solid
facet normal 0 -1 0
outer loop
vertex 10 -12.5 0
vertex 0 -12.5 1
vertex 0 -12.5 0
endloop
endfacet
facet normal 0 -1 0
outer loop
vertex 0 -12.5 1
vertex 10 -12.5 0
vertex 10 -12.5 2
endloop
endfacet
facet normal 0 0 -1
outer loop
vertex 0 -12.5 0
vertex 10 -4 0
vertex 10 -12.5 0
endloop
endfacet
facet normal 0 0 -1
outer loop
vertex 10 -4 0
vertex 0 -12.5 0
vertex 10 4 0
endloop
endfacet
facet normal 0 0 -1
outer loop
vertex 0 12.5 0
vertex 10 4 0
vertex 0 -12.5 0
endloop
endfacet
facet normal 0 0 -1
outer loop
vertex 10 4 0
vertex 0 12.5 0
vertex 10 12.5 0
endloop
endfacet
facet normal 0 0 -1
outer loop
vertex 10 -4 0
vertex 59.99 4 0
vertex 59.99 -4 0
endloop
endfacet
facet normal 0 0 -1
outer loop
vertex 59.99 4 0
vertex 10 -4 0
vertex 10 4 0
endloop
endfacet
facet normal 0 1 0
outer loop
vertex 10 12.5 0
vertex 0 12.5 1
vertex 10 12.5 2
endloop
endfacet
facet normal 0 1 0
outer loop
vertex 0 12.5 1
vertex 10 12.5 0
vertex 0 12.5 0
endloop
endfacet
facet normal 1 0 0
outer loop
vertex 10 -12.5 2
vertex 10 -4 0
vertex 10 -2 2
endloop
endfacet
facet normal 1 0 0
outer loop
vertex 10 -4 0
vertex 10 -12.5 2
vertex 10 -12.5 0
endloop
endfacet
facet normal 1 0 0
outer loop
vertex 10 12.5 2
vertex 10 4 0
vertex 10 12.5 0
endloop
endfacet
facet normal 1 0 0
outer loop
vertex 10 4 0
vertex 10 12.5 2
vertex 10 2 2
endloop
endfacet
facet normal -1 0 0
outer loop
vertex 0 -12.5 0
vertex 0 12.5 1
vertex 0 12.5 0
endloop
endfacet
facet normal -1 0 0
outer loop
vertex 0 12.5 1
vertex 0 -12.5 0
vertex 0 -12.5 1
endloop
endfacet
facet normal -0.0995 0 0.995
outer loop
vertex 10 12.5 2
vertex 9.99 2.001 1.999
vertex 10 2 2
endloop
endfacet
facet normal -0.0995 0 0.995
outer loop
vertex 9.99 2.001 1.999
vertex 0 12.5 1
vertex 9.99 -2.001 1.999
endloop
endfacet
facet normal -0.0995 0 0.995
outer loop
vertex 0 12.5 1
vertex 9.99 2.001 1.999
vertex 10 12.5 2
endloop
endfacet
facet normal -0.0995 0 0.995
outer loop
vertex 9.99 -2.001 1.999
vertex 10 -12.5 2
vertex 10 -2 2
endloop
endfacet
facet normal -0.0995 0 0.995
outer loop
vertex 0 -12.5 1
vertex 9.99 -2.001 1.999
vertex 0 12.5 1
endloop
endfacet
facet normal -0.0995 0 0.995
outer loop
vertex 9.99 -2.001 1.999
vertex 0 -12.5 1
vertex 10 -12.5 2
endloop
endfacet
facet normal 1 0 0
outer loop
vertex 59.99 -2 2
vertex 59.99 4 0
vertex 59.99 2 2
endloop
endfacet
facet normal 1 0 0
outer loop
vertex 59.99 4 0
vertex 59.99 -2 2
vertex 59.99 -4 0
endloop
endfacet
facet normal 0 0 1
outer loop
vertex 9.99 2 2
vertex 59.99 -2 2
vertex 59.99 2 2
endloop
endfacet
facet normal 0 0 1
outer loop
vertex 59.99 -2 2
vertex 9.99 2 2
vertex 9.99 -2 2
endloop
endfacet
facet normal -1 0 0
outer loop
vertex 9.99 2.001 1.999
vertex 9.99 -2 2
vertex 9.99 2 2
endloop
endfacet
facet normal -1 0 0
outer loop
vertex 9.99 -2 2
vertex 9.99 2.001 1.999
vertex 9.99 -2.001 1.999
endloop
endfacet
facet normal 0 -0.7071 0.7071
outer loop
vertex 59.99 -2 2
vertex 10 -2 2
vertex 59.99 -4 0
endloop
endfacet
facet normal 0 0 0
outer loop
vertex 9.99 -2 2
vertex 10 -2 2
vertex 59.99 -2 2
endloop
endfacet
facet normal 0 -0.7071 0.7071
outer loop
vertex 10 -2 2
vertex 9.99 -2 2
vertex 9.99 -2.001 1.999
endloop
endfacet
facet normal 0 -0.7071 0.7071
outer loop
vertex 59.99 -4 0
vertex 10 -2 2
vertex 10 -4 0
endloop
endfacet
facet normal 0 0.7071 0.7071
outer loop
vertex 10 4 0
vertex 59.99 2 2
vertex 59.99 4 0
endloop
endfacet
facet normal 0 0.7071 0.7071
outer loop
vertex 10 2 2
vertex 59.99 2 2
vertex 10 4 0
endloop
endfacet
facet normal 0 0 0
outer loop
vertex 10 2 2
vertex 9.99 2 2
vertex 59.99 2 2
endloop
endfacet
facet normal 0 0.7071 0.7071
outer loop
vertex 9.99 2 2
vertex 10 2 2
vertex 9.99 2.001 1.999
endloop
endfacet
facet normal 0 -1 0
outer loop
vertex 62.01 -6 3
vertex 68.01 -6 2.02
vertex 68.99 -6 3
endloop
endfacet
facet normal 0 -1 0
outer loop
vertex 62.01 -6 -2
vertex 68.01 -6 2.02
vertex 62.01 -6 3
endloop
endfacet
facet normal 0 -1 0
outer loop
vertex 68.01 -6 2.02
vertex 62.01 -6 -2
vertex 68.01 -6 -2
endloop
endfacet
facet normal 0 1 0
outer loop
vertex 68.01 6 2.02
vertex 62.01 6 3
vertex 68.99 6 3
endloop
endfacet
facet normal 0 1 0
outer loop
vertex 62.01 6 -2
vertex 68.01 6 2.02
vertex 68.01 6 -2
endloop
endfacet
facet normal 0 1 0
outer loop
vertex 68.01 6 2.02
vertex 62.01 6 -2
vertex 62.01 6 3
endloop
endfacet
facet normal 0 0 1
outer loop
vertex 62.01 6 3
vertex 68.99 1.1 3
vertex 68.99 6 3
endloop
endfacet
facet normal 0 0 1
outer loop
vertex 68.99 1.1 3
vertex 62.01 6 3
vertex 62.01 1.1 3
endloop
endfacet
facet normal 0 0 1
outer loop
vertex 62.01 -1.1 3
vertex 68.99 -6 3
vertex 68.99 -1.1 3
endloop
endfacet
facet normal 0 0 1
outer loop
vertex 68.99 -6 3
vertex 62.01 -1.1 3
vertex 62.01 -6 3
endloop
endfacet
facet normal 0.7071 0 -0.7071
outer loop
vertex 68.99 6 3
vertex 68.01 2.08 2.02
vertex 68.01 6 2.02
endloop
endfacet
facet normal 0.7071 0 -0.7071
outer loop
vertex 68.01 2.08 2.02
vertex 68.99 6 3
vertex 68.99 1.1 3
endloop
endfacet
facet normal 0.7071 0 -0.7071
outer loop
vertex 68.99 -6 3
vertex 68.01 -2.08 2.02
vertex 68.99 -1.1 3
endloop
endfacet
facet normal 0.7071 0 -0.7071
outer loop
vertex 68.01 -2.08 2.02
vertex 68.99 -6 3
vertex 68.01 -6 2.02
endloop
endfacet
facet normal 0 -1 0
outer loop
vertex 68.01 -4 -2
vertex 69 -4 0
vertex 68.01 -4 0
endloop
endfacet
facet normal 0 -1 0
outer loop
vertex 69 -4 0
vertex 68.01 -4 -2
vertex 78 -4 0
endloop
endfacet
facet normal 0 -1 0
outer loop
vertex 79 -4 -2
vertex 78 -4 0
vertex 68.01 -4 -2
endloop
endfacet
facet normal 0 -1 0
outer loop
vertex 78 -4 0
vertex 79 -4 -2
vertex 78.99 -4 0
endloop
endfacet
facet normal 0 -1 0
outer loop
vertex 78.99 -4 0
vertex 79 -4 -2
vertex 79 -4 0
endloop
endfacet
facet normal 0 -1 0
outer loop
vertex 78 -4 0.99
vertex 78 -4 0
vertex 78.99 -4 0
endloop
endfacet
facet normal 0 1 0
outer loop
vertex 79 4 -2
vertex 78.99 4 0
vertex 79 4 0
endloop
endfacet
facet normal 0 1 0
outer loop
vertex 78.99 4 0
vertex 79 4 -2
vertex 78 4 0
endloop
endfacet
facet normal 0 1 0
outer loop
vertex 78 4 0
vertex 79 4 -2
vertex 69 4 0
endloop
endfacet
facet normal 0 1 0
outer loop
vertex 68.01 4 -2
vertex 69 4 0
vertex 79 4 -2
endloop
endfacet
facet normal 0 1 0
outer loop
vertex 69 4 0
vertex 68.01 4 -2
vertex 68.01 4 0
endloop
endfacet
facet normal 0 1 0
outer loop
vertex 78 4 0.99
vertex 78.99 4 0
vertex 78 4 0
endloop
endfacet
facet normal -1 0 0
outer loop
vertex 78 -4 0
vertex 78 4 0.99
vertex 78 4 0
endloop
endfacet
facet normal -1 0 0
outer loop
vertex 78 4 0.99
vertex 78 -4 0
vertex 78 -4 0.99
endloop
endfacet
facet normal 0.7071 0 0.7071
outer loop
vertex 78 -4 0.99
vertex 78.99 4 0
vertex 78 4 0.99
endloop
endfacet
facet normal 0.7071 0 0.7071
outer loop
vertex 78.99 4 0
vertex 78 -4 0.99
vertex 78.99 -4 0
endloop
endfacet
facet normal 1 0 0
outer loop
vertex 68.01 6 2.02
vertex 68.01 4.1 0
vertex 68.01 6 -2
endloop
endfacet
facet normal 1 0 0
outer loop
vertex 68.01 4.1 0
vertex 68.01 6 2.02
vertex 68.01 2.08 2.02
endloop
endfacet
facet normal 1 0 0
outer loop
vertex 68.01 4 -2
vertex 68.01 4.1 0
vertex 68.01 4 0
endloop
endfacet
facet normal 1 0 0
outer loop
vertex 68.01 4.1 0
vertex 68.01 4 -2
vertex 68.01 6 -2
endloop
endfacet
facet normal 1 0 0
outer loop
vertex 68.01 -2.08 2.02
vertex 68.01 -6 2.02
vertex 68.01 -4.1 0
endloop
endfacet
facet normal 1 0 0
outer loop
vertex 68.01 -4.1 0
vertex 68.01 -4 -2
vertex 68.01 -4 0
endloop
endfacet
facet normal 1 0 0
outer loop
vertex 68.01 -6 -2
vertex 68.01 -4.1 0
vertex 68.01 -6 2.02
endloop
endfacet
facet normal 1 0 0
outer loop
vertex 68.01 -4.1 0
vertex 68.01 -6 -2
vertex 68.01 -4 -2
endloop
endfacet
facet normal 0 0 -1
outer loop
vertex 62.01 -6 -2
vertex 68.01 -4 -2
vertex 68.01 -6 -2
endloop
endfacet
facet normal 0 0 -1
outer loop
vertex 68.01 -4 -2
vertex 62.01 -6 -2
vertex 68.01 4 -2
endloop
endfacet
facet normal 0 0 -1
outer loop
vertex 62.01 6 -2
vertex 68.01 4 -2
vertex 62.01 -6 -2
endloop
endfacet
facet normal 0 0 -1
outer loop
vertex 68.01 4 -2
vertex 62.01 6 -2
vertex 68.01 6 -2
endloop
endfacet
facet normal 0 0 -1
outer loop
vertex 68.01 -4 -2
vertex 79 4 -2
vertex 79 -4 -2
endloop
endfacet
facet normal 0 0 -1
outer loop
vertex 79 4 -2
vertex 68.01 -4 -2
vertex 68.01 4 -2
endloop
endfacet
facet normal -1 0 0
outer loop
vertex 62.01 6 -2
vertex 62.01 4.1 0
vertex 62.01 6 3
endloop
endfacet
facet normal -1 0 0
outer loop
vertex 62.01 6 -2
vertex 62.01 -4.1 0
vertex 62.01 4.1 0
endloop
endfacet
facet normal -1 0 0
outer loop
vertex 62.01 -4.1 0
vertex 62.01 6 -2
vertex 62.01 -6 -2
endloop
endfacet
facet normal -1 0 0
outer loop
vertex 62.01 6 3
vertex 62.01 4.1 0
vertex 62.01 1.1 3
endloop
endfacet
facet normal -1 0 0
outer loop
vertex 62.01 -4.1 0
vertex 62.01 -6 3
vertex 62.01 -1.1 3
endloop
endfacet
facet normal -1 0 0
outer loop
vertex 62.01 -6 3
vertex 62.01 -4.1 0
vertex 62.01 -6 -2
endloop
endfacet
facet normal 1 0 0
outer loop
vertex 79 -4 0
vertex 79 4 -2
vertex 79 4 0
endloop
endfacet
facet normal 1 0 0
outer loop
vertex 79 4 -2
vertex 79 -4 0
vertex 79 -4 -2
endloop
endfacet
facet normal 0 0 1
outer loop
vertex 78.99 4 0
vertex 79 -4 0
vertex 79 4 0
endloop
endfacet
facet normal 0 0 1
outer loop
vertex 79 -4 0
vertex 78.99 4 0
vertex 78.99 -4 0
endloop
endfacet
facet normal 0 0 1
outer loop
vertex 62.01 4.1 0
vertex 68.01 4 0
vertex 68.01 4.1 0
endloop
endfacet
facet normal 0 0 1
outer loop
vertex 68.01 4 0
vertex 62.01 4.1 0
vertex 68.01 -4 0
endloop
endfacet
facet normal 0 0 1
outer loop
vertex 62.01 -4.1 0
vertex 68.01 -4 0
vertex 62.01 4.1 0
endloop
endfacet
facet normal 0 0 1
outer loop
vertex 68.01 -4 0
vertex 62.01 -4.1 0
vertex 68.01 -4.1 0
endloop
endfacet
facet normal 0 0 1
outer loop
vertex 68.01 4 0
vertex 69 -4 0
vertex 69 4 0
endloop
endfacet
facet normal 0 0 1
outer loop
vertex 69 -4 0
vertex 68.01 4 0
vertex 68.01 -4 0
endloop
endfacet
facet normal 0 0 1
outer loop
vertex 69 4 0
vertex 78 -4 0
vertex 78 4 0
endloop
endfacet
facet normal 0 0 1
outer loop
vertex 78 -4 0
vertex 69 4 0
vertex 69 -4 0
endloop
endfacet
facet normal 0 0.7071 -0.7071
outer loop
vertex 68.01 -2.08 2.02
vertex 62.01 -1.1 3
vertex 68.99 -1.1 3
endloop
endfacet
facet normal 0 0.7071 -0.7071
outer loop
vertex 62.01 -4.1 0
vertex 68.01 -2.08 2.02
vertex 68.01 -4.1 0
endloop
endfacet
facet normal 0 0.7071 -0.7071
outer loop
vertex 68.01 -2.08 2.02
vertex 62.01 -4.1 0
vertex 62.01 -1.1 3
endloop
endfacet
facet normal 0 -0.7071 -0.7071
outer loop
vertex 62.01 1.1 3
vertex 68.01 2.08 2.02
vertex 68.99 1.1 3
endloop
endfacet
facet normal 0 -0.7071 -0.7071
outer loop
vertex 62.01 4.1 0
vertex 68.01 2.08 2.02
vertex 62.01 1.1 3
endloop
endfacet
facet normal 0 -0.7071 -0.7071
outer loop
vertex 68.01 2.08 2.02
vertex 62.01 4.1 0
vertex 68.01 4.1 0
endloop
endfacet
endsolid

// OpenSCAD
// HedgehogClip.scad
//
// Gutter clip for retaining a "hedgehog" debris-repelling filler.
// Inspired by a wire-based design by David Poston.
//

delta         = 0.01 ;
clearance     = 0.1 ;

gulley_w      = 50 ;
gulley_edge_w = 10 ;   
clip_w        = 8 ;
clip_t        = 2 ;
clip_l        = gulley_w + gulley_edge_w ;
clip_tbar_w   = 25 ;                // Width of T-bar end
clip_tbar_d   = gulley_edge_w ;     // Depth of T-bar end
clip_tbar_t0  = 1 ;                 // Thickness of T-bar thin end
retainer_w    = 12 ;                // Width of retainer
retainer_d    = 6 ;                 // Depth of retainer
retainer_lip  = 1 ;                 // Width/thickness of retainer lip

module trapezoid_45_prism(l, w, t) {
    // Trapezoidal prism with 45-degree faces, centred on and extending along X-axis.
    //
    // l = length of prism
    // w = width of wide face of prism
    // t = thickness of prism
    //
    difference() {
        // Body:
        translate([0,-w/2,0])
            cube(size=[l,w,t], center=false) ;
        // 45 degree chamfers:
        translate([-delta,-w/2,0])
            rotate([45,0,0])
                cube(size=[l+delta*2,t*2,t*2], center=false) ;
        translate([-delta,+w/2,0])
            rotate([45,0,0])
                cube(size=[l+delta*2,t*2,t*2], center=false) ;
    }
}
////-Test trapezoid_45_prism(l, w, t)
// trapezoid_45_prism(100, 10, 2) ;

module wedge(l,w,t0,t1) {
    // Wedge with edge lying on and extending on the X-axis, 
    // tapering along the Y axis.
    //
    // l  = length of wedge
    // w  = width of wedge
    // t0 = thickness of wedge at X-axis (y=0)
    // t1 = thickness of wedge away from X-axis (y=w)
    //
    difference() {
        // Body:
        translate([0,0,0])
            cube(size=[l,w,t0+t1], center=false) ;
        // Taper:
        translate([0,0,t0])
            rotate([atan2(t1-t0,w),0,0])
                translate([-delta,-delta,0])
                    cube(size=[l+delta*2,w+t0+t1,t0+t1], center=false) ;
    }
}
////-Test wedge(l,w,t0,t1)
// wedge(100,10,2,1) ;
// wedge(20,2,2,0) ;

module clip_main_part(tbar_w,tbar_d,tbar_t0,clip_l,clip_w,clip_t) {
    // Main clip as T-piece
    rotate([0,0,-90])
        translate([-tbar_w/2,0,0])
            wedge(tbar_w, tbar_d, tbar_t0, clip_t) ;
    translate([tbar_d-delta,0,0])
        trapezoid_45_prism(clip_l-tbar_d, clip_w, clip_t) ;
}
////-Test clip_main_part(tbar_w,tbar_d,tbar_t0,clip_l,clip_w,clip_t)
clip_main_part(clip_tbar_w, clip_tbar_d, clip_tbar_t0, clip_l, clip_w, clip_t) ;


module clip_retainer() {
    difference() {
        union() {
            translate([-retainer_d+delta,-retainer_w/2,0])
                cube(size=[retainer_d, retainer_w, clip_t*2+retainer_lip], center=false) ;
            translate([-delta,retainer_w/2,clip_t*2+retainer_lip])
                rotate([-90,0,-90])
                    wedge(retainer_w, retainer_lip, retainer_lip, 0) ;
            translate([0,-clip_w/2,0])
                cube(size=[gulley_edge_w+retainer_lip, clip_w, clip_t], center=false) ;
            translate([gulley_edge_w,clip_w/2,clip_t-delta])
                rotate([0,0,-90])
                    wedge(clip_w, retainer_lip, retainer_lip, 0) ;
        }
        translate([-retainer_d-delta,0,clip_t])
            rotate([0,0,0])
                trapezoid_45_prism(
                    retainer_d+retainer_lip+delta, 
                    clip_w+clearance*2, 
                    clip_t+retainer_lip+delta
                ) ;
    }
}
////-Test clip_retainer()
translate([clip_l+clip_w,0,-clip_t]) clip_retainer() ;
